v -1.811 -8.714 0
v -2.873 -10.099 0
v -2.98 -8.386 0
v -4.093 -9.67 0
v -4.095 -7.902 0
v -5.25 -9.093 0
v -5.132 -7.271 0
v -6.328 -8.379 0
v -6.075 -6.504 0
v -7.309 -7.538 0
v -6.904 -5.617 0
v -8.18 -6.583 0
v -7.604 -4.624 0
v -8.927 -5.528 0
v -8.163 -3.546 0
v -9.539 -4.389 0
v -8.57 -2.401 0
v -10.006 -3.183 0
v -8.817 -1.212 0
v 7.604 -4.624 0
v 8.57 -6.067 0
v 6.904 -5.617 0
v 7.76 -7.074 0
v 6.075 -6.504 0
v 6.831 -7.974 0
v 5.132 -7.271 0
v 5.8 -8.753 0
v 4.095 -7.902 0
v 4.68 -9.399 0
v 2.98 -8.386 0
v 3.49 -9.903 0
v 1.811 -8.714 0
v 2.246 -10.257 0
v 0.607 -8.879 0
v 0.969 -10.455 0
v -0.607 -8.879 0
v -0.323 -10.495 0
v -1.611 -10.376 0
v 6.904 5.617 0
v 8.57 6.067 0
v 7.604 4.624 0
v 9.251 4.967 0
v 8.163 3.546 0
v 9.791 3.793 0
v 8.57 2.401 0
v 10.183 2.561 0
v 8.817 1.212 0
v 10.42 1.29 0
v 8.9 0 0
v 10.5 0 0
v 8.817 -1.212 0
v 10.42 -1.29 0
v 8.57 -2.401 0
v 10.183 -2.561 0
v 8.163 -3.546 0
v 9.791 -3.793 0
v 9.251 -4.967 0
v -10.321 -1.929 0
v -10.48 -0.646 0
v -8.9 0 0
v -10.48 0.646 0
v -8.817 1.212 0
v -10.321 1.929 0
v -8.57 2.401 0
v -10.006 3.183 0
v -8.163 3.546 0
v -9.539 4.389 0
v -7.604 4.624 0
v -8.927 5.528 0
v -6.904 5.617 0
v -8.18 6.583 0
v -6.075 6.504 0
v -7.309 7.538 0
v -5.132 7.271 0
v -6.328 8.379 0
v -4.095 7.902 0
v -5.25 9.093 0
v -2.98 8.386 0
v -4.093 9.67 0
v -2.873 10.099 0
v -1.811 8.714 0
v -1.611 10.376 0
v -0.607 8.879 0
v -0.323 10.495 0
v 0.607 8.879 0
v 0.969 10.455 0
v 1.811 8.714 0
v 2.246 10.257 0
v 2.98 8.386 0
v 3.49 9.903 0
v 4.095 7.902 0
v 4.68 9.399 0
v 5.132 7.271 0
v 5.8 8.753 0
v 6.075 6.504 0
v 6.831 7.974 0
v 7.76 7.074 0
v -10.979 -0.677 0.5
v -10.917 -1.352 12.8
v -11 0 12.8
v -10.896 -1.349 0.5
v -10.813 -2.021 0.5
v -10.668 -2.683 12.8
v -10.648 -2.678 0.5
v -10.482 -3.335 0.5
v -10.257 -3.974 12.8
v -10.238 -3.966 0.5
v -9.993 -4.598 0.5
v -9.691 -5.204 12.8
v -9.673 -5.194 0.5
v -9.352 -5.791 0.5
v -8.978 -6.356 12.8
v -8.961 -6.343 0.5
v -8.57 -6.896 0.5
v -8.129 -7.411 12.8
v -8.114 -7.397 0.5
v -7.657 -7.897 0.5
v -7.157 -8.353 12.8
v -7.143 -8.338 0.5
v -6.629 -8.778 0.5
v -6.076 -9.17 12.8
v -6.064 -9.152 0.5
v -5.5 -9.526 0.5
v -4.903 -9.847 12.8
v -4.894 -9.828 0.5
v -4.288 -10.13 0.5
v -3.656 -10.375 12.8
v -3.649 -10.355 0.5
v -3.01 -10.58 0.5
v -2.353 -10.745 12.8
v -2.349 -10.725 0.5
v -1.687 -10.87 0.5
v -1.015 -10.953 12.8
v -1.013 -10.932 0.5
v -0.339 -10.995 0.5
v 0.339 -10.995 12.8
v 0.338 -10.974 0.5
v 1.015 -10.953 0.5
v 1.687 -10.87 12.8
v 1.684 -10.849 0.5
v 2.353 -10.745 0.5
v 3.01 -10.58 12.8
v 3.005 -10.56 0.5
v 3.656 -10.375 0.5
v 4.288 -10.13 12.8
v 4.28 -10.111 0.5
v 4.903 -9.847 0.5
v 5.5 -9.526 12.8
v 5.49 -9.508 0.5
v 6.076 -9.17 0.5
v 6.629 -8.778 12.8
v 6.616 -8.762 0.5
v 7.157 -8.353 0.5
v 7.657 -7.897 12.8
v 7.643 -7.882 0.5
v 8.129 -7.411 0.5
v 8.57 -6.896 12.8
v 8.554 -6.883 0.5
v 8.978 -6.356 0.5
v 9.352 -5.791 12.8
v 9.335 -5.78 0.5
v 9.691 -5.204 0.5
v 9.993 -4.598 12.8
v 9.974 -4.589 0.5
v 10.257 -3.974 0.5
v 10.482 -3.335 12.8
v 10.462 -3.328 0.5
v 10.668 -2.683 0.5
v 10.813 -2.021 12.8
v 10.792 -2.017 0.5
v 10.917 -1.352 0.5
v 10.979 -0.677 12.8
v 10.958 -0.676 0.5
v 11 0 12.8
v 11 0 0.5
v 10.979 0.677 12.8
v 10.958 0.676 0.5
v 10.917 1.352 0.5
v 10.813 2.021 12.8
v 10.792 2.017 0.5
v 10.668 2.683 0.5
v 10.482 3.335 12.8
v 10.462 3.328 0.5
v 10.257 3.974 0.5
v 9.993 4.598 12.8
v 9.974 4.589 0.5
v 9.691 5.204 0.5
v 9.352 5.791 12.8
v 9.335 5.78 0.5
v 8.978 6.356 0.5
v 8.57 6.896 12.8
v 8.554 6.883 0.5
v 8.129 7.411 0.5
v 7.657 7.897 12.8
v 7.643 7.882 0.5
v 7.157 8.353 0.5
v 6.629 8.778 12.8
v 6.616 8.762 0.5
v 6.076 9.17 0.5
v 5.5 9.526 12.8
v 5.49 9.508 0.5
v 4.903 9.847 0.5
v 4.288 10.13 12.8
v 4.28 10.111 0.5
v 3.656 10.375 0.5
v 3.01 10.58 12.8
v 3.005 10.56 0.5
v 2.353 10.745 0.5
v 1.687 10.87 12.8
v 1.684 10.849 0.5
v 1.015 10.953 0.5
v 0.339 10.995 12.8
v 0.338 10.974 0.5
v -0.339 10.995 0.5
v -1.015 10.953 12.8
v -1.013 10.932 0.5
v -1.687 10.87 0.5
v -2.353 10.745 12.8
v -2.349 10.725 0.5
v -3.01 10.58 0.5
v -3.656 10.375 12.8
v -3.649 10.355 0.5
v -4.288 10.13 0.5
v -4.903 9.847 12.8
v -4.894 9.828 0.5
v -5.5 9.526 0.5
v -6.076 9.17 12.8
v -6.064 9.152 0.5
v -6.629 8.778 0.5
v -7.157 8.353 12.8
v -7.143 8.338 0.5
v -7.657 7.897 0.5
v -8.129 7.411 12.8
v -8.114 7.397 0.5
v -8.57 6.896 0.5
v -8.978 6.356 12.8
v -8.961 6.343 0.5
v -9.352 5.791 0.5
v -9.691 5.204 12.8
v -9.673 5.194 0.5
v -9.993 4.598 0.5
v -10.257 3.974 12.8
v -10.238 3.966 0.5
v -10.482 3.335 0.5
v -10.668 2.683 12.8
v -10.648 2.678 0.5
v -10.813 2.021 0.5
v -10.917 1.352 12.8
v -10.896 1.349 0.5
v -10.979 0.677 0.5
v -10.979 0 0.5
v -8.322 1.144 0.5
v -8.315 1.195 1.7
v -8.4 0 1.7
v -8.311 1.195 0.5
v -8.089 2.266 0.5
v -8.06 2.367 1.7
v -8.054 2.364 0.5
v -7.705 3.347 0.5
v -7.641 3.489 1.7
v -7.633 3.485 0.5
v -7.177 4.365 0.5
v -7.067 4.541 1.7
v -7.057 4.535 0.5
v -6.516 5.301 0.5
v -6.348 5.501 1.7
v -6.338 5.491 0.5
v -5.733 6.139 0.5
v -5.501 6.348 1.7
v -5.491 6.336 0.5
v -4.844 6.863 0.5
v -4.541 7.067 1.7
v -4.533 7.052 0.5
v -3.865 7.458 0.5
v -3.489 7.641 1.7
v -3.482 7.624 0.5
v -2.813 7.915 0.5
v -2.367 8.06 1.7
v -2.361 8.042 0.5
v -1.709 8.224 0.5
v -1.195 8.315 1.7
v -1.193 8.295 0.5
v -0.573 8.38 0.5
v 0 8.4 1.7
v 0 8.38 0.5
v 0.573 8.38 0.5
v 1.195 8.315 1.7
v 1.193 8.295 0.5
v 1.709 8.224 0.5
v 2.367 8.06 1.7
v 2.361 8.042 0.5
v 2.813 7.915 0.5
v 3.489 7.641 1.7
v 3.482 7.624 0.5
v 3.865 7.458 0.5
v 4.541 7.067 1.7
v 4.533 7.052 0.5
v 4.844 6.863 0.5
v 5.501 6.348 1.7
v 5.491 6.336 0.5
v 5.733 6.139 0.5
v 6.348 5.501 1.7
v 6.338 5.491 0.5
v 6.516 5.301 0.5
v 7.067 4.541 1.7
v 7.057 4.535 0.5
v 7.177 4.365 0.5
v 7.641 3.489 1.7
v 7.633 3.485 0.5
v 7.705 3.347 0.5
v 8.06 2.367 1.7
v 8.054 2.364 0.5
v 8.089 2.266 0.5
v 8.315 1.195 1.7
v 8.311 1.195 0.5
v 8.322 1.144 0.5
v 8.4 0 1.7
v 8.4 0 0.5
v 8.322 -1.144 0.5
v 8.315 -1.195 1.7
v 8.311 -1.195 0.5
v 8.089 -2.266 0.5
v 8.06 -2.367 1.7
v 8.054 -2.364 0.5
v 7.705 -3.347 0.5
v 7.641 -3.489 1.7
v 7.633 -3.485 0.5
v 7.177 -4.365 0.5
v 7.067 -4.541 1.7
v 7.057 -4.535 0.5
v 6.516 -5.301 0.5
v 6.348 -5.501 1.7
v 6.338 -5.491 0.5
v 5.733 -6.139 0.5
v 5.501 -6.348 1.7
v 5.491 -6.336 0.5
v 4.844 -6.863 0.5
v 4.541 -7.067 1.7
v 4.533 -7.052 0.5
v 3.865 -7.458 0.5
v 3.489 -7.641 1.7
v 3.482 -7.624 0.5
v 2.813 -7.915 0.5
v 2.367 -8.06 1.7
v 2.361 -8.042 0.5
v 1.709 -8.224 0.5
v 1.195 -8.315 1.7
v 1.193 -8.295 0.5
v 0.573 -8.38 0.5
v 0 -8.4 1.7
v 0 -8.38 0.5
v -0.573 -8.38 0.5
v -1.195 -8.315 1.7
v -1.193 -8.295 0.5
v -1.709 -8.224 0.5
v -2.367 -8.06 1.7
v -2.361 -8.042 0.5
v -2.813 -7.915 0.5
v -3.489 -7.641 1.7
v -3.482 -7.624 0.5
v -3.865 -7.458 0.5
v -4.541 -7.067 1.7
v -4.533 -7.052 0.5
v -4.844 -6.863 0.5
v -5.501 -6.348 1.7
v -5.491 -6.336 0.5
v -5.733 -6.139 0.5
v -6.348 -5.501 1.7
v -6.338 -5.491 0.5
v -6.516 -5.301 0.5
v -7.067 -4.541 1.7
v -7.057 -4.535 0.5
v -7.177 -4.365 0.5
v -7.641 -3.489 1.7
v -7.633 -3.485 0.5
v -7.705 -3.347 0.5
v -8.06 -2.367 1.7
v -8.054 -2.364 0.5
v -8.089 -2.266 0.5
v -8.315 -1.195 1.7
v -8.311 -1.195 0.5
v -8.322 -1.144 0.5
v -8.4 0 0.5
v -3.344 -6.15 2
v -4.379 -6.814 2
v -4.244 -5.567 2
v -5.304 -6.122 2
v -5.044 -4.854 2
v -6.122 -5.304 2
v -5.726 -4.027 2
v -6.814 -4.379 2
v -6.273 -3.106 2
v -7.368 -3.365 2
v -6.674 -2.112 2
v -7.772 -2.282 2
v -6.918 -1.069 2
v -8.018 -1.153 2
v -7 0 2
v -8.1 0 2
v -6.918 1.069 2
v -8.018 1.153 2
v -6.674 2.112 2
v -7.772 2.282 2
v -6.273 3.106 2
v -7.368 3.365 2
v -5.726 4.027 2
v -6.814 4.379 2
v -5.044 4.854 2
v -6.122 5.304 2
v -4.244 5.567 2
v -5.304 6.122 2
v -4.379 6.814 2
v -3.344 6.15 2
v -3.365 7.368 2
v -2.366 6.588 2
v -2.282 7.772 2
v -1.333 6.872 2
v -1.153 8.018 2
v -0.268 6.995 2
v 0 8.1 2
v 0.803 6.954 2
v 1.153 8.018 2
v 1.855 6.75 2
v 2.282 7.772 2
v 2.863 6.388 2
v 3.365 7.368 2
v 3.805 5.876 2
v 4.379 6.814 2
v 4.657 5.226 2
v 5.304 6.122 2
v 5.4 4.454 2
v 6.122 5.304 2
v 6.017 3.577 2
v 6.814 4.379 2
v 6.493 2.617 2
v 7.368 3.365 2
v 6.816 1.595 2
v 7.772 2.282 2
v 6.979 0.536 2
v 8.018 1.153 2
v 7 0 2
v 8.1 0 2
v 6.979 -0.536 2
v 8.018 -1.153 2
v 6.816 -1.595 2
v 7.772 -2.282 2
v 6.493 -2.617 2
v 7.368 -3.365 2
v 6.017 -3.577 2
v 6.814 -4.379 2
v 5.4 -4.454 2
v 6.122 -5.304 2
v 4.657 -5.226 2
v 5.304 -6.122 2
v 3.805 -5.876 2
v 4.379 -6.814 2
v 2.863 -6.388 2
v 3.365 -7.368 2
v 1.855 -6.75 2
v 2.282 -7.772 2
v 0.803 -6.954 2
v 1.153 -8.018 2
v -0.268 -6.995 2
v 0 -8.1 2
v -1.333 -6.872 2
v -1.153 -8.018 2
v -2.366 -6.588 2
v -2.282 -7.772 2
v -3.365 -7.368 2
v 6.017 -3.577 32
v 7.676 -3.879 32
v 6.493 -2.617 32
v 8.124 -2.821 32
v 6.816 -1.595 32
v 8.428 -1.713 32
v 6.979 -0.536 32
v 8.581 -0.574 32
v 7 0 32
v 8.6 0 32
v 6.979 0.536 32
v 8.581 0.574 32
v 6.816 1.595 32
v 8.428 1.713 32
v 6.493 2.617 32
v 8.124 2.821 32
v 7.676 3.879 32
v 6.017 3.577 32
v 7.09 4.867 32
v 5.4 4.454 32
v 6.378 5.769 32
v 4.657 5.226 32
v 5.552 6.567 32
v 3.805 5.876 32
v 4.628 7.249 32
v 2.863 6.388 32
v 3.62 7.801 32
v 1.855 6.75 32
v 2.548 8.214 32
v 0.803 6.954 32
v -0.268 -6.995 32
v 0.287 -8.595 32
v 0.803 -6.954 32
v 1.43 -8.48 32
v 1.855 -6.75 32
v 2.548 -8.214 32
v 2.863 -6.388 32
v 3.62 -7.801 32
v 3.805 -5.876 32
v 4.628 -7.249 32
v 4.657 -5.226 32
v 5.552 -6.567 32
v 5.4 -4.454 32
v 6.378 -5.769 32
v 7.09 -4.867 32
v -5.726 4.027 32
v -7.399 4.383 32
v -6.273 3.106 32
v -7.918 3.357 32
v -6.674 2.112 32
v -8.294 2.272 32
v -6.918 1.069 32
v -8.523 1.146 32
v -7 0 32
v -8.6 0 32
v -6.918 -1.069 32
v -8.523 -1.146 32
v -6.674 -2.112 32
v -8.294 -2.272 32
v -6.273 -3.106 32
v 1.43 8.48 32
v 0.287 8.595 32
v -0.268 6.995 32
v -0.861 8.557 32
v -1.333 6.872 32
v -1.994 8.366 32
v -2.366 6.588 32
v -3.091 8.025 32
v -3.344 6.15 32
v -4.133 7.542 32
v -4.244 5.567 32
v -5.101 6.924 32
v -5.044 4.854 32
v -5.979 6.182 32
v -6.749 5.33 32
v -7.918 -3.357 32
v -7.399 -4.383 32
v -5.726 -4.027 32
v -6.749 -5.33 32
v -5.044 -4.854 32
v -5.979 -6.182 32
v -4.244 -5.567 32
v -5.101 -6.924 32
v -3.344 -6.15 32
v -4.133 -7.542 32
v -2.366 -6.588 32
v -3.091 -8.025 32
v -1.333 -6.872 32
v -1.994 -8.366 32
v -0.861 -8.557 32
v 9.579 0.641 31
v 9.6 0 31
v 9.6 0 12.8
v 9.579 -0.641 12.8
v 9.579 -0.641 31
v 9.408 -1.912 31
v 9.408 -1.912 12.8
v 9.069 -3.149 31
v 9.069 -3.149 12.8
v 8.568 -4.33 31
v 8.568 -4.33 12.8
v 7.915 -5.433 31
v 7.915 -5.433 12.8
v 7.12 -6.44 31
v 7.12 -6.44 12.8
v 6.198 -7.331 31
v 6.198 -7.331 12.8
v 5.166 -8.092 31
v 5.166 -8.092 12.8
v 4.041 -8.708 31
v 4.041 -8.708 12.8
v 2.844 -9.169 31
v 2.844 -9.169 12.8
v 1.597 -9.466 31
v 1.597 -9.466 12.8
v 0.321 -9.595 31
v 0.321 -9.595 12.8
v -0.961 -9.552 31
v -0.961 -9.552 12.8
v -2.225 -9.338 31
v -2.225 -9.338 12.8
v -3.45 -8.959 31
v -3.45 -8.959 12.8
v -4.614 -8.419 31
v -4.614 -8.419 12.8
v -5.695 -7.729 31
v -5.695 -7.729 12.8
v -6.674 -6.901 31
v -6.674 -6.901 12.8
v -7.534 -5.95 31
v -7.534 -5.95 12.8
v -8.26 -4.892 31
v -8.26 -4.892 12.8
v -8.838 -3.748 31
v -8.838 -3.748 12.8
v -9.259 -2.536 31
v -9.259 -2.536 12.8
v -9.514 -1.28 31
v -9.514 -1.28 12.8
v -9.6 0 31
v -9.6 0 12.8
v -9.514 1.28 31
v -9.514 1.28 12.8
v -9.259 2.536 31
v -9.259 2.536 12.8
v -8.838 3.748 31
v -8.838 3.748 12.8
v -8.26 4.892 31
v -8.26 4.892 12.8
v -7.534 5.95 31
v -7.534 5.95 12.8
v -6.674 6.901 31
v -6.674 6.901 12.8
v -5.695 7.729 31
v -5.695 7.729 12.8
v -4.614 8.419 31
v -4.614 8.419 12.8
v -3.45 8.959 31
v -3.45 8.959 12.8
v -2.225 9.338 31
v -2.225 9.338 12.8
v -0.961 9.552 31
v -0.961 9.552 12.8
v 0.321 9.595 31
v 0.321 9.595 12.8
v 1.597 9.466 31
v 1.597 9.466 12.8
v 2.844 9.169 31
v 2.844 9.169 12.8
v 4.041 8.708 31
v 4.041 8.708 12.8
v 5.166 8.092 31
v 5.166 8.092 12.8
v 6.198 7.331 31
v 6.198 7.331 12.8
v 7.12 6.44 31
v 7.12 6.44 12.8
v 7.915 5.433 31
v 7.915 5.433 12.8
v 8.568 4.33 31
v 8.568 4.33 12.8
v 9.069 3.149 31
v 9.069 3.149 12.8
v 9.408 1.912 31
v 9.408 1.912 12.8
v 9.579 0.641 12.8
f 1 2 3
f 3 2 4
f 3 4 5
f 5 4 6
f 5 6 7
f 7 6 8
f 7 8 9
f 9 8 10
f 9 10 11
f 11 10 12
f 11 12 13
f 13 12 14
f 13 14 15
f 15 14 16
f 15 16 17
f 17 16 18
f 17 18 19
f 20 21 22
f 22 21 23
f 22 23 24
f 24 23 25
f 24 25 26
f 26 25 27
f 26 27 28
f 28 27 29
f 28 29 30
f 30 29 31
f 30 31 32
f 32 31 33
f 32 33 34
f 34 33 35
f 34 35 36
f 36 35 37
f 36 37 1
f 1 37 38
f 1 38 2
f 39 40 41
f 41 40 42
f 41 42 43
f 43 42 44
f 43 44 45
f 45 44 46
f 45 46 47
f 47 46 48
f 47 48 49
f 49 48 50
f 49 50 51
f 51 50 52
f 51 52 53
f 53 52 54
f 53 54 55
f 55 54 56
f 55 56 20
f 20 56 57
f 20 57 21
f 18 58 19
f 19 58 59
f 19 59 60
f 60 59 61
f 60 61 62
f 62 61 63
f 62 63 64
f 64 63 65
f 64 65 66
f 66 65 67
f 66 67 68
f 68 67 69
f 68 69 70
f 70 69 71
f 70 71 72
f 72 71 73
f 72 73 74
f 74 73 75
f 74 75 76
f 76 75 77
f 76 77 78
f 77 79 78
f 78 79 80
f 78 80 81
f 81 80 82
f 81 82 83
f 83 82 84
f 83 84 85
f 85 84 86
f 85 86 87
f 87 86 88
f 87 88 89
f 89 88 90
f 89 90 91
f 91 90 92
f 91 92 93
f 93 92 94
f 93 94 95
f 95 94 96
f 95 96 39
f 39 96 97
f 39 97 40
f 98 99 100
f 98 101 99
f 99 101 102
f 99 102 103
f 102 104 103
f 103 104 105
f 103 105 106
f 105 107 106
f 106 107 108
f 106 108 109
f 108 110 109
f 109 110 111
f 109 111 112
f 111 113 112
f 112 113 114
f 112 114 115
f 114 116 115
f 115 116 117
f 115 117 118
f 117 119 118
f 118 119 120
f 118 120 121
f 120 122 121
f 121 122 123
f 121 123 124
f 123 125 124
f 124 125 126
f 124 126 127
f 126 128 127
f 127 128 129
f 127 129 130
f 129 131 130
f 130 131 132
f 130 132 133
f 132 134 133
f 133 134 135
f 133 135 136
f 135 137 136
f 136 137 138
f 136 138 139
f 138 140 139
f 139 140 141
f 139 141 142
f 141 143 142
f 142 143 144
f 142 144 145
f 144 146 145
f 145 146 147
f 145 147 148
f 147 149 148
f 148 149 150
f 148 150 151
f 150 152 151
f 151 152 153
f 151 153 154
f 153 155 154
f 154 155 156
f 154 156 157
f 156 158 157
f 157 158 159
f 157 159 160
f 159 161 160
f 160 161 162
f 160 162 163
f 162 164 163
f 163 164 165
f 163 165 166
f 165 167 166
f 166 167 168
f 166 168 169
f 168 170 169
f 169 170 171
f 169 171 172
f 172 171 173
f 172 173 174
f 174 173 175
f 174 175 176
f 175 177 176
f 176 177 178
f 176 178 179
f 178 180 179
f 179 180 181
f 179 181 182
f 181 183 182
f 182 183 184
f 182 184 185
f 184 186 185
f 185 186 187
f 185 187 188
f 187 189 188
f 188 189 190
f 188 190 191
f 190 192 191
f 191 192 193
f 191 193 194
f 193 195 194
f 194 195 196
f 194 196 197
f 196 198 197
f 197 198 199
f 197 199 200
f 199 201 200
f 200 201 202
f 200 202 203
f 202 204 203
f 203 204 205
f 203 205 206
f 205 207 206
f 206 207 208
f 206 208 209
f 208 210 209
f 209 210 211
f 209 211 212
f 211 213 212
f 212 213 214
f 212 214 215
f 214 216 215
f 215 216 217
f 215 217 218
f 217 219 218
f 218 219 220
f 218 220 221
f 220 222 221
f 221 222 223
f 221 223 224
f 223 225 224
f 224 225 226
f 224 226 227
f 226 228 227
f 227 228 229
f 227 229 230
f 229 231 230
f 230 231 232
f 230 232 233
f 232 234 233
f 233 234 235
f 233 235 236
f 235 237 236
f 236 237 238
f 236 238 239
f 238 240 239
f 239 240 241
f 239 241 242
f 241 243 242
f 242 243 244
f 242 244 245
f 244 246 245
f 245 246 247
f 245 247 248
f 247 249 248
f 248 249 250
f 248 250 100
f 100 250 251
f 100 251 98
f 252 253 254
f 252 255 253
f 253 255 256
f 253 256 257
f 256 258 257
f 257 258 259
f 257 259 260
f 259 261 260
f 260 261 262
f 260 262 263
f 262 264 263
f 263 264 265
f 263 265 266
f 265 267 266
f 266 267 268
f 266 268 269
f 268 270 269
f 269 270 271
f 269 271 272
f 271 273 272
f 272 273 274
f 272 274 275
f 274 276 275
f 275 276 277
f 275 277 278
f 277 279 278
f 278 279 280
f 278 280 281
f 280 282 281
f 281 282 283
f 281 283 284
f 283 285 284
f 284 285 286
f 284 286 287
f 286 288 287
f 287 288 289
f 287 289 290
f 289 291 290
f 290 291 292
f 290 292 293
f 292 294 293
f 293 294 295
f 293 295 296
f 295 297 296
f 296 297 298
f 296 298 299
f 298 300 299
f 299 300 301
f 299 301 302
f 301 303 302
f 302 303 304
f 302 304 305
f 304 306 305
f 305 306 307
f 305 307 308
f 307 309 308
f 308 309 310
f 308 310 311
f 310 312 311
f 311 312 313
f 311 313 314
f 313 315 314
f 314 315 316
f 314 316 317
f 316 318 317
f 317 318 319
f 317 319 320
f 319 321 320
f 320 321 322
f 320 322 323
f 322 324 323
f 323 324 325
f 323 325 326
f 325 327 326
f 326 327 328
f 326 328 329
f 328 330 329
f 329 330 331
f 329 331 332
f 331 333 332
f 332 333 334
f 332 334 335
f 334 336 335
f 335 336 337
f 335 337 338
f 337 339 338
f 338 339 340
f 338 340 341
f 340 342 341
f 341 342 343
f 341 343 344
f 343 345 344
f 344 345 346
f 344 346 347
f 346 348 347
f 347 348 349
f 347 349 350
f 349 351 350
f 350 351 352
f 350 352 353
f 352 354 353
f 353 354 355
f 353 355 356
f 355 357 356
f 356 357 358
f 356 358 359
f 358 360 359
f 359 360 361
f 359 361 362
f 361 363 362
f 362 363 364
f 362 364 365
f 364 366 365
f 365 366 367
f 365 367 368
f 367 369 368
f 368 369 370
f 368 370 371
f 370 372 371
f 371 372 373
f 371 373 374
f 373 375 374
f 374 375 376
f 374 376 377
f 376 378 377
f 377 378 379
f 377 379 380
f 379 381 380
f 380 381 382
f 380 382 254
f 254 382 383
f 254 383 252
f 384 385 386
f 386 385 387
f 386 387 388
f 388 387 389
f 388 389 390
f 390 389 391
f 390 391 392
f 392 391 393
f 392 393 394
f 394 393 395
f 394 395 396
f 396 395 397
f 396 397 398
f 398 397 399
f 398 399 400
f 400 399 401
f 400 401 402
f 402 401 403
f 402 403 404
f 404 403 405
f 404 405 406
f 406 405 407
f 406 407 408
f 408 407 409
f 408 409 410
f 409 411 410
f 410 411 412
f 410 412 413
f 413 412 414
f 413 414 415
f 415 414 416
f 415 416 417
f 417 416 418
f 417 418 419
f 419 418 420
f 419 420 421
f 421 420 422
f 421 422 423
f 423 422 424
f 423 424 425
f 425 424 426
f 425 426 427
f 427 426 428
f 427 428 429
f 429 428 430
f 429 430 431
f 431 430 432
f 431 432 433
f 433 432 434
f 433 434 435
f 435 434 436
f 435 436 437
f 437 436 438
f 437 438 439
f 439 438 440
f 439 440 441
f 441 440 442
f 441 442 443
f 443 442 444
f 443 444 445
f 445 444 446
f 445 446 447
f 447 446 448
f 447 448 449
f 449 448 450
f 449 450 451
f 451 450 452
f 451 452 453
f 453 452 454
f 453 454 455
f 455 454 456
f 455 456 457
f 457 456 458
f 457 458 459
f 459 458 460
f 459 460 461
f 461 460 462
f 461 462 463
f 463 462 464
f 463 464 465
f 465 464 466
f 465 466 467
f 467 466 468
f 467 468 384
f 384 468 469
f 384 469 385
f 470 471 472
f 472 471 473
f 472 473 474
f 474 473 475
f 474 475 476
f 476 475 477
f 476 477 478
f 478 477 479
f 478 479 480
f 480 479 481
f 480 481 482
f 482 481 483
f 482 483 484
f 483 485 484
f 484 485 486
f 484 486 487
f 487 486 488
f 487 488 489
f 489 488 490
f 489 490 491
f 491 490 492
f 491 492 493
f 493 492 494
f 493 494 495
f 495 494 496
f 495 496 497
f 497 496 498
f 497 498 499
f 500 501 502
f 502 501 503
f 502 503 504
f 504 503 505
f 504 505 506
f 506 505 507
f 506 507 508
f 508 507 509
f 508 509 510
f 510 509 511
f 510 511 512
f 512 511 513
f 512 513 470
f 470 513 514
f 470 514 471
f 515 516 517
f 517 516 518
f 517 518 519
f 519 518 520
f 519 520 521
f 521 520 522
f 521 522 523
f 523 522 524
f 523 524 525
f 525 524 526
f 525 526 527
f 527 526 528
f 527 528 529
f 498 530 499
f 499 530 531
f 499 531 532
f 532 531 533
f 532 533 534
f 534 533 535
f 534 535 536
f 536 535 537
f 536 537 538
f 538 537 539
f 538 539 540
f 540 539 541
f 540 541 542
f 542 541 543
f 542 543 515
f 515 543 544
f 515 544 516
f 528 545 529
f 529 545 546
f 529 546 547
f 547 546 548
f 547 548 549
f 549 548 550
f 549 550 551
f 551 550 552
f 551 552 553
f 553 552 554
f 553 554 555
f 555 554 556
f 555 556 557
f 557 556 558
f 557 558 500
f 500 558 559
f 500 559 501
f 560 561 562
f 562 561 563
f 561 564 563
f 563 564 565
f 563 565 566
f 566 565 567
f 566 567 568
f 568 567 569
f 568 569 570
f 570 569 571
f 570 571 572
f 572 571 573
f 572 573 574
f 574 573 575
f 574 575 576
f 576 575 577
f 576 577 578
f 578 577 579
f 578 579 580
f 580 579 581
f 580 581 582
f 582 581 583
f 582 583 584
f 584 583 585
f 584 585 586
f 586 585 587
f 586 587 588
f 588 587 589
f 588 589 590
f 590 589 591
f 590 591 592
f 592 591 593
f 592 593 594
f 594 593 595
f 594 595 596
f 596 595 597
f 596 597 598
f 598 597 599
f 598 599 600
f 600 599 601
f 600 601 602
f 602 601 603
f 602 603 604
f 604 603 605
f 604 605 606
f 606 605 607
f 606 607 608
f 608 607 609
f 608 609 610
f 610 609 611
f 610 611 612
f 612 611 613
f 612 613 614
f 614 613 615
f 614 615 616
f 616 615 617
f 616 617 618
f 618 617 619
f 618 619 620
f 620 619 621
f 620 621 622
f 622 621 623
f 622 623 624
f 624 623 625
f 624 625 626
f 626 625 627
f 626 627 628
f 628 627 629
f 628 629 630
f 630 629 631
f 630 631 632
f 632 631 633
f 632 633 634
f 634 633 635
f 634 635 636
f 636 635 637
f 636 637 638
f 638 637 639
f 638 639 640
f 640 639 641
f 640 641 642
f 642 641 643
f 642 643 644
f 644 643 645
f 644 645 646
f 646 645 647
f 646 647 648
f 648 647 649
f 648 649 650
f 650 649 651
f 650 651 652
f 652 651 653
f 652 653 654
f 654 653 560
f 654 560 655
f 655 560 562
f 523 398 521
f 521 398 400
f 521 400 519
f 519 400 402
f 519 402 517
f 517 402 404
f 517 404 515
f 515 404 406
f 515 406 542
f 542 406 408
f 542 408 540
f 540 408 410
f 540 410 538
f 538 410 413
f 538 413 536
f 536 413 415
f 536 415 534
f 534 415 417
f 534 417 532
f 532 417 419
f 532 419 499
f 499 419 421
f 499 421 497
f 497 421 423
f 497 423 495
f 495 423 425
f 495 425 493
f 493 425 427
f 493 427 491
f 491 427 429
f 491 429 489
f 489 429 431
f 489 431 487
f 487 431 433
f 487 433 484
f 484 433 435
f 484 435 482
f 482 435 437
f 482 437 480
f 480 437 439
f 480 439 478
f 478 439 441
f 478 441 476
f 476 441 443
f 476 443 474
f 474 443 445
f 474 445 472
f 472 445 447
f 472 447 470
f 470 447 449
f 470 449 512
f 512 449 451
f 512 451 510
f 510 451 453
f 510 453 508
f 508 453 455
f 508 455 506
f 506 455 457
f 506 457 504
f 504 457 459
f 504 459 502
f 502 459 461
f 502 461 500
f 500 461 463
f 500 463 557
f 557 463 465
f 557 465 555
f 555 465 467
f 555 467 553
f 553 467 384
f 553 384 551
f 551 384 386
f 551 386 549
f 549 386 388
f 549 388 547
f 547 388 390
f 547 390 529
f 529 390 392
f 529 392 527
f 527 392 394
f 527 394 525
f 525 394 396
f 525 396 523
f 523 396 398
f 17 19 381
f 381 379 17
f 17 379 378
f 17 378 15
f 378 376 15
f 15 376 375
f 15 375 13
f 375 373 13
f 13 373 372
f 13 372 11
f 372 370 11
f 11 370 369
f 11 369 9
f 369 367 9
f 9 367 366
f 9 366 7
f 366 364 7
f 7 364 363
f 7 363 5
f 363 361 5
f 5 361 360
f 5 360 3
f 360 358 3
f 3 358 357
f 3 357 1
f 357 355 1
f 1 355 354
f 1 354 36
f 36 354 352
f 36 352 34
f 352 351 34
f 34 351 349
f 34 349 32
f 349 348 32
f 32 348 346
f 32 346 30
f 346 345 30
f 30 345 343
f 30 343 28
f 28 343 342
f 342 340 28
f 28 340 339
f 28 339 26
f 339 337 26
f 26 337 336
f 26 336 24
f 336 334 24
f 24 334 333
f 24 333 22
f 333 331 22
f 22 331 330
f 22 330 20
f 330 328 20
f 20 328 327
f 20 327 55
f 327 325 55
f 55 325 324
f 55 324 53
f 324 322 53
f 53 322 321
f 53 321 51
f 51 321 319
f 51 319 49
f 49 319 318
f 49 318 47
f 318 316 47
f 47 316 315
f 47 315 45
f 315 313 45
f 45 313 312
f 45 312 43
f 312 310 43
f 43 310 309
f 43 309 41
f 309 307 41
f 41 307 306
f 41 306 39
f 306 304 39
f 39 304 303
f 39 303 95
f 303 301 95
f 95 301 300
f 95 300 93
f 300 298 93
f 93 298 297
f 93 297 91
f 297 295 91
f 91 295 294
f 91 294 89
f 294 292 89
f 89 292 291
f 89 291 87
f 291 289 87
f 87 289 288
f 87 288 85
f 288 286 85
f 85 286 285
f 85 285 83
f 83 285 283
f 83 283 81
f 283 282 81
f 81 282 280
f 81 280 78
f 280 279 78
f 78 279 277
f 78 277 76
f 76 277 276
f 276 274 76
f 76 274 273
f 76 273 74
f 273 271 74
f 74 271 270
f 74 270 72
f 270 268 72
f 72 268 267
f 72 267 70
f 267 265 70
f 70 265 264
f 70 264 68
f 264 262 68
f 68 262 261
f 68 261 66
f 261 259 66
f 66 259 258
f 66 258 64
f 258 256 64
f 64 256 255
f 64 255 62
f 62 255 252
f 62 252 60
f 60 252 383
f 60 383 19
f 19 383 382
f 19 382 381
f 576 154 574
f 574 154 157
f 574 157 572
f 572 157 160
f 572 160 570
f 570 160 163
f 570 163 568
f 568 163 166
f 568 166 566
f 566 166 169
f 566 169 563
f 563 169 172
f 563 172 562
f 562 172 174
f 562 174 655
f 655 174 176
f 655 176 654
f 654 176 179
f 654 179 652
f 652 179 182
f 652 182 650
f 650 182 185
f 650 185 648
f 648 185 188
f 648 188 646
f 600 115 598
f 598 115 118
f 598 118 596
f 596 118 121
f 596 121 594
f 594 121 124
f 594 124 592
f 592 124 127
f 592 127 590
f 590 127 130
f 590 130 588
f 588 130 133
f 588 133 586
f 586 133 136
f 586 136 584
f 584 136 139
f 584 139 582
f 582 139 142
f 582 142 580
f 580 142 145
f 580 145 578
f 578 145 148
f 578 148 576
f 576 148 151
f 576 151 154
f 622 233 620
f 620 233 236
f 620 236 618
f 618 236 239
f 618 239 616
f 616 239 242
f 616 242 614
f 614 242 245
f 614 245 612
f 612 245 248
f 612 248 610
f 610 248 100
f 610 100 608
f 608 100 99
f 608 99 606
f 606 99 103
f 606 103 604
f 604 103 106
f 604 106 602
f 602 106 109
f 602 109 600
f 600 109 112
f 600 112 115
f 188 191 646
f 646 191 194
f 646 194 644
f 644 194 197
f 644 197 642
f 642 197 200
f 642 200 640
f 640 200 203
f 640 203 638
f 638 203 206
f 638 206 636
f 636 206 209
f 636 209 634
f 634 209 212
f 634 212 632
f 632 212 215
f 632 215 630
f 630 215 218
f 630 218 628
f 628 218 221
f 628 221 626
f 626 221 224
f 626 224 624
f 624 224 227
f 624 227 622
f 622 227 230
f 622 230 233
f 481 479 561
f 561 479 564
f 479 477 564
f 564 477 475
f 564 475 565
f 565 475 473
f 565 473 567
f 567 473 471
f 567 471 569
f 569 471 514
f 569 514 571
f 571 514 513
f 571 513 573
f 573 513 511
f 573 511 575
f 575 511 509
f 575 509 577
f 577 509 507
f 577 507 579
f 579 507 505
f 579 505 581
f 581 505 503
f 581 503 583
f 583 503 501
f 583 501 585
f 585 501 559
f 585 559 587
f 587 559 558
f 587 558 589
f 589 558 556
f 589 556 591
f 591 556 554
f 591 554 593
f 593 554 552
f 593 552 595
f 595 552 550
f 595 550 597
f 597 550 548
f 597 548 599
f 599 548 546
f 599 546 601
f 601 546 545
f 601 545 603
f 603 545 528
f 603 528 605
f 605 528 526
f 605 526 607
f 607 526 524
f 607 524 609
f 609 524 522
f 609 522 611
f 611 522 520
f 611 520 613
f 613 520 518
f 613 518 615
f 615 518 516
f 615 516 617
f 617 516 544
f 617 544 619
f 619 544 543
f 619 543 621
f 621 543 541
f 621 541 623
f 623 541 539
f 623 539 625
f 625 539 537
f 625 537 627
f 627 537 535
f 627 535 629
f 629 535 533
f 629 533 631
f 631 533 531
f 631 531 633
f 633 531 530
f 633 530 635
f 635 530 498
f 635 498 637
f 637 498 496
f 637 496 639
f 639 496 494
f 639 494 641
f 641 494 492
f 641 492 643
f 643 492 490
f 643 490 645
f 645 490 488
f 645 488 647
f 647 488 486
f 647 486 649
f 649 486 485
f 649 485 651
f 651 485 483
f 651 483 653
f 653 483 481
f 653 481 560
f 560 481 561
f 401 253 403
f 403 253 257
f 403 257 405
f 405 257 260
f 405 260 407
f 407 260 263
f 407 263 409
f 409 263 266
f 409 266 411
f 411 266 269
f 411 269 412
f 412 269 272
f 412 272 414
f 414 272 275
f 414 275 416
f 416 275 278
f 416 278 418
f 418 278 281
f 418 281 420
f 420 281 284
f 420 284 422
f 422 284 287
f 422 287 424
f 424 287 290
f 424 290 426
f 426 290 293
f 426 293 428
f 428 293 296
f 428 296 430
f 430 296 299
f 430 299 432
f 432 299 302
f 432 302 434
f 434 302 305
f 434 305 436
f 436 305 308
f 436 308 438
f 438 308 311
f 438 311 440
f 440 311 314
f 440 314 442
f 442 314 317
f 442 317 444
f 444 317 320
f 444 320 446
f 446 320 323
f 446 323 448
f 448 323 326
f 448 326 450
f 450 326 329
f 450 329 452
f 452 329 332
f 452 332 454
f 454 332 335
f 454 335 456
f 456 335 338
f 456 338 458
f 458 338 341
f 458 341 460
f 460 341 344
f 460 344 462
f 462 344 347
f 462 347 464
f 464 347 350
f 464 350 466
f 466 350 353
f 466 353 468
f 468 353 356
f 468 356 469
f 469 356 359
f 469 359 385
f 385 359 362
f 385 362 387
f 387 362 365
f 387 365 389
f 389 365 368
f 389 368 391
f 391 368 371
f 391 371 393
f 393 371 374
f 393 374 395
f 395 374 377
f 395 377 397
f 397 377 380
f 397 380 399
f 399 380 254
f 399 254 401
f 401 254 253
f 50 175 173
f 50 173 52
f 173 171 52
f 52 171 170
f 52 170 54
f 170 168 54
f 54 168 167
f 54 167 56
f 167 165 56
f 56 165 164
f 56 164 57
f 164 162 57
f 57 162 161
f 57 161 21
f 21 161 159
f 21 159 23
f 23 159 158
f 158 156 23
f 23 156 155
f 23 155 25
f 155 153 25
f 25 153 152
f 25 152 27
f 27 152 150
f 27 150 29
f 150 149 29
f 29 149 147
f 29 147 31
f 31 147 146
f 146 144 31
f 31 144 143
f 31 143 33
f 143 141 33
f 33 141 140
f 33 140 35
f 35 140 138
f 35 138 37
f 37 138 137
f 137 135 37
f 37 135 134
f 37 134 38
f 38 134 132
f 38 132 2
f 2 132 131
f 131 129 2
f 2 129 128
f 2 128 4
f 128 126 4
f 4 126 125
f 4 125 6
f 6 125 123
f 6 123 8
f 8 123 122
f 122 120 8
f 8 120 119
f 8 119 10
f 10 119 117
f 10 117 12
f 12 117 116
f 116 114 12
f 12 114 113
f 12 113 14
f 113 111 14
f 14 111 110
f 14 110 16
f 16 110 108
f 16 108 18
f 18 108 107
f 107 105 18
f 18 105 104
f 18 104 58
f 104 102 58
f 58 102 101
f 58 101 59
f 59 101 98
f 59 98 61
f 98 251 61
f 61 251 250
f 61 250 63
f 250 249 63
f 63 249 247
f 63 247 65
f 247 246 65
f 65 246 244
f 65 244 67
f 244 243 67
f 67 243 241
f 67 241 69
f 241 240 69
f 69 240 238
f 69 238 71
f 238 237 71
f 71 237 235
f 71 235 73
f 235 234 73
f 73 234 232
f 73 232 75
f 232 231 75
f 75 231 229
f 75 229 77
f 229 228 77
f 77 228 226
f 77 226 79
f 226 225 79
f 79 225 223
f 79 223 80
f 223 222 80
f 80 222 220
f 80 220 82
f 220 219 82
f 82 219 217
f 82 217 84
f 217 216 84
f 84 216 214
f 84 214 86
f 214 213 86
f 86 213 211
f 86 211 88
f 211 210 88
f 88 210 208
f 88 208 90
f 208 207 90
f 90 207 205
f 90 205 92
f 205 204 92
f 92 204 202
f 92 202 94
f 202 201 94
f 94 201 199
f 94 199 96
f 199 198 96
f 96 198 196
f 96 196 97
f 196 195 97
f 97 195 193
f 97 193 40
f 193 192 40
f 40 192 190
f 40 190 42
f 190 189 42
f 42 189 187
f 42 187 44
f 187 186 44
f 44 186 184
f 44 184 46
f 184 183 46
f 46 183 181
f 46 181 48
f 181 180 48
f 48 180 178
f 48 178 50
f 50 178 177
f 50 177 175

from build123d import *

# Parameters (mm, degrees)
SKETCH_1_R      = 11
SKETCH_1_R_2    = 8.4
EXTRUDE_1_DEPTH = 2
SKETCH_2_R      = 9.6
SKETCH_2_R_2    = 7
EXTRUDE_2_DEPTH = 30
CHAMFER_1_SIZE  = 0.5
SKETCH_3_R      = 11
SKETCH_3_R_2    = 9.6
EXTRUDE_3_DEPTH = 10.8
CHAMFER_2_SIZE  = 1
CHAMFER_3_SIZE  = 0.3
CHAMFER_4_SIZE  = 0.5


with BuildPart() as part:
    # 스케치1 → 보스-돌출1 (new body)
    with BuildSketch(Plane.XY):
        Circle(SKETCH_1_R)
        Circle(SKETCH_1_R_2, mode=Mode.SUBTRACT)
    extrude(amount=EXTRUDE_1_DEPTH)

    # 스케치2 → 보스-돌출2 (add)
    with BuildSketch(Plane.XY.offset(2)):
        Circle(SKETCH_2_R)
        Circle(SKETCH_2_R_2, mode=Mode.SUBTRACT)
    extrude(amount=EXTRUDE_2_DEPTH)

    # 모따기1
    chamfer_1_edges = [part.edges().sort_by_distance(p)[0] for p in [
        (-8.4, 0, 0),
    ]]
    chamfer(chamfer_1_edges, length=CHAMFER_1_SIZE)

    # 스케치3 → 보스-돌출3 (add)
    with BuildSketch(Plane.XY.offset(2)):
        Circle(SKETCH_3_R)
        Circle(SKETCH_3_R_2, mode=Mode.SUBTRACT)
    extrude(amount=EXTRUDE_3_DEPTH)

    # 모따기2
    chamfer_2_edges = [part.edges().sort_by_distance(p)[0] for p in [
        (-9.6, 0, 32),
    ]]
    chamfer(chamfer_2_edges, length=CHAMFER_2_SIZE)

    # 모따기3
    chamfer_3_edges = [part.edges().sort_by_distance(p)[0] for p in [
        (-8.4, 0, 2),
    ]]
    chamfer(chamfer_3_edges, length=CHAMFER_3_SIZE)

    # 모따기4
    chamfer_4_edges = [part.edges().sort_by_distance(p)[0] for p in [
        (-11, 0, 0),
    ]]
    chamfer(chamfer_4_edges, length=CHAMFER_4_SIZE)


solid = part.part
